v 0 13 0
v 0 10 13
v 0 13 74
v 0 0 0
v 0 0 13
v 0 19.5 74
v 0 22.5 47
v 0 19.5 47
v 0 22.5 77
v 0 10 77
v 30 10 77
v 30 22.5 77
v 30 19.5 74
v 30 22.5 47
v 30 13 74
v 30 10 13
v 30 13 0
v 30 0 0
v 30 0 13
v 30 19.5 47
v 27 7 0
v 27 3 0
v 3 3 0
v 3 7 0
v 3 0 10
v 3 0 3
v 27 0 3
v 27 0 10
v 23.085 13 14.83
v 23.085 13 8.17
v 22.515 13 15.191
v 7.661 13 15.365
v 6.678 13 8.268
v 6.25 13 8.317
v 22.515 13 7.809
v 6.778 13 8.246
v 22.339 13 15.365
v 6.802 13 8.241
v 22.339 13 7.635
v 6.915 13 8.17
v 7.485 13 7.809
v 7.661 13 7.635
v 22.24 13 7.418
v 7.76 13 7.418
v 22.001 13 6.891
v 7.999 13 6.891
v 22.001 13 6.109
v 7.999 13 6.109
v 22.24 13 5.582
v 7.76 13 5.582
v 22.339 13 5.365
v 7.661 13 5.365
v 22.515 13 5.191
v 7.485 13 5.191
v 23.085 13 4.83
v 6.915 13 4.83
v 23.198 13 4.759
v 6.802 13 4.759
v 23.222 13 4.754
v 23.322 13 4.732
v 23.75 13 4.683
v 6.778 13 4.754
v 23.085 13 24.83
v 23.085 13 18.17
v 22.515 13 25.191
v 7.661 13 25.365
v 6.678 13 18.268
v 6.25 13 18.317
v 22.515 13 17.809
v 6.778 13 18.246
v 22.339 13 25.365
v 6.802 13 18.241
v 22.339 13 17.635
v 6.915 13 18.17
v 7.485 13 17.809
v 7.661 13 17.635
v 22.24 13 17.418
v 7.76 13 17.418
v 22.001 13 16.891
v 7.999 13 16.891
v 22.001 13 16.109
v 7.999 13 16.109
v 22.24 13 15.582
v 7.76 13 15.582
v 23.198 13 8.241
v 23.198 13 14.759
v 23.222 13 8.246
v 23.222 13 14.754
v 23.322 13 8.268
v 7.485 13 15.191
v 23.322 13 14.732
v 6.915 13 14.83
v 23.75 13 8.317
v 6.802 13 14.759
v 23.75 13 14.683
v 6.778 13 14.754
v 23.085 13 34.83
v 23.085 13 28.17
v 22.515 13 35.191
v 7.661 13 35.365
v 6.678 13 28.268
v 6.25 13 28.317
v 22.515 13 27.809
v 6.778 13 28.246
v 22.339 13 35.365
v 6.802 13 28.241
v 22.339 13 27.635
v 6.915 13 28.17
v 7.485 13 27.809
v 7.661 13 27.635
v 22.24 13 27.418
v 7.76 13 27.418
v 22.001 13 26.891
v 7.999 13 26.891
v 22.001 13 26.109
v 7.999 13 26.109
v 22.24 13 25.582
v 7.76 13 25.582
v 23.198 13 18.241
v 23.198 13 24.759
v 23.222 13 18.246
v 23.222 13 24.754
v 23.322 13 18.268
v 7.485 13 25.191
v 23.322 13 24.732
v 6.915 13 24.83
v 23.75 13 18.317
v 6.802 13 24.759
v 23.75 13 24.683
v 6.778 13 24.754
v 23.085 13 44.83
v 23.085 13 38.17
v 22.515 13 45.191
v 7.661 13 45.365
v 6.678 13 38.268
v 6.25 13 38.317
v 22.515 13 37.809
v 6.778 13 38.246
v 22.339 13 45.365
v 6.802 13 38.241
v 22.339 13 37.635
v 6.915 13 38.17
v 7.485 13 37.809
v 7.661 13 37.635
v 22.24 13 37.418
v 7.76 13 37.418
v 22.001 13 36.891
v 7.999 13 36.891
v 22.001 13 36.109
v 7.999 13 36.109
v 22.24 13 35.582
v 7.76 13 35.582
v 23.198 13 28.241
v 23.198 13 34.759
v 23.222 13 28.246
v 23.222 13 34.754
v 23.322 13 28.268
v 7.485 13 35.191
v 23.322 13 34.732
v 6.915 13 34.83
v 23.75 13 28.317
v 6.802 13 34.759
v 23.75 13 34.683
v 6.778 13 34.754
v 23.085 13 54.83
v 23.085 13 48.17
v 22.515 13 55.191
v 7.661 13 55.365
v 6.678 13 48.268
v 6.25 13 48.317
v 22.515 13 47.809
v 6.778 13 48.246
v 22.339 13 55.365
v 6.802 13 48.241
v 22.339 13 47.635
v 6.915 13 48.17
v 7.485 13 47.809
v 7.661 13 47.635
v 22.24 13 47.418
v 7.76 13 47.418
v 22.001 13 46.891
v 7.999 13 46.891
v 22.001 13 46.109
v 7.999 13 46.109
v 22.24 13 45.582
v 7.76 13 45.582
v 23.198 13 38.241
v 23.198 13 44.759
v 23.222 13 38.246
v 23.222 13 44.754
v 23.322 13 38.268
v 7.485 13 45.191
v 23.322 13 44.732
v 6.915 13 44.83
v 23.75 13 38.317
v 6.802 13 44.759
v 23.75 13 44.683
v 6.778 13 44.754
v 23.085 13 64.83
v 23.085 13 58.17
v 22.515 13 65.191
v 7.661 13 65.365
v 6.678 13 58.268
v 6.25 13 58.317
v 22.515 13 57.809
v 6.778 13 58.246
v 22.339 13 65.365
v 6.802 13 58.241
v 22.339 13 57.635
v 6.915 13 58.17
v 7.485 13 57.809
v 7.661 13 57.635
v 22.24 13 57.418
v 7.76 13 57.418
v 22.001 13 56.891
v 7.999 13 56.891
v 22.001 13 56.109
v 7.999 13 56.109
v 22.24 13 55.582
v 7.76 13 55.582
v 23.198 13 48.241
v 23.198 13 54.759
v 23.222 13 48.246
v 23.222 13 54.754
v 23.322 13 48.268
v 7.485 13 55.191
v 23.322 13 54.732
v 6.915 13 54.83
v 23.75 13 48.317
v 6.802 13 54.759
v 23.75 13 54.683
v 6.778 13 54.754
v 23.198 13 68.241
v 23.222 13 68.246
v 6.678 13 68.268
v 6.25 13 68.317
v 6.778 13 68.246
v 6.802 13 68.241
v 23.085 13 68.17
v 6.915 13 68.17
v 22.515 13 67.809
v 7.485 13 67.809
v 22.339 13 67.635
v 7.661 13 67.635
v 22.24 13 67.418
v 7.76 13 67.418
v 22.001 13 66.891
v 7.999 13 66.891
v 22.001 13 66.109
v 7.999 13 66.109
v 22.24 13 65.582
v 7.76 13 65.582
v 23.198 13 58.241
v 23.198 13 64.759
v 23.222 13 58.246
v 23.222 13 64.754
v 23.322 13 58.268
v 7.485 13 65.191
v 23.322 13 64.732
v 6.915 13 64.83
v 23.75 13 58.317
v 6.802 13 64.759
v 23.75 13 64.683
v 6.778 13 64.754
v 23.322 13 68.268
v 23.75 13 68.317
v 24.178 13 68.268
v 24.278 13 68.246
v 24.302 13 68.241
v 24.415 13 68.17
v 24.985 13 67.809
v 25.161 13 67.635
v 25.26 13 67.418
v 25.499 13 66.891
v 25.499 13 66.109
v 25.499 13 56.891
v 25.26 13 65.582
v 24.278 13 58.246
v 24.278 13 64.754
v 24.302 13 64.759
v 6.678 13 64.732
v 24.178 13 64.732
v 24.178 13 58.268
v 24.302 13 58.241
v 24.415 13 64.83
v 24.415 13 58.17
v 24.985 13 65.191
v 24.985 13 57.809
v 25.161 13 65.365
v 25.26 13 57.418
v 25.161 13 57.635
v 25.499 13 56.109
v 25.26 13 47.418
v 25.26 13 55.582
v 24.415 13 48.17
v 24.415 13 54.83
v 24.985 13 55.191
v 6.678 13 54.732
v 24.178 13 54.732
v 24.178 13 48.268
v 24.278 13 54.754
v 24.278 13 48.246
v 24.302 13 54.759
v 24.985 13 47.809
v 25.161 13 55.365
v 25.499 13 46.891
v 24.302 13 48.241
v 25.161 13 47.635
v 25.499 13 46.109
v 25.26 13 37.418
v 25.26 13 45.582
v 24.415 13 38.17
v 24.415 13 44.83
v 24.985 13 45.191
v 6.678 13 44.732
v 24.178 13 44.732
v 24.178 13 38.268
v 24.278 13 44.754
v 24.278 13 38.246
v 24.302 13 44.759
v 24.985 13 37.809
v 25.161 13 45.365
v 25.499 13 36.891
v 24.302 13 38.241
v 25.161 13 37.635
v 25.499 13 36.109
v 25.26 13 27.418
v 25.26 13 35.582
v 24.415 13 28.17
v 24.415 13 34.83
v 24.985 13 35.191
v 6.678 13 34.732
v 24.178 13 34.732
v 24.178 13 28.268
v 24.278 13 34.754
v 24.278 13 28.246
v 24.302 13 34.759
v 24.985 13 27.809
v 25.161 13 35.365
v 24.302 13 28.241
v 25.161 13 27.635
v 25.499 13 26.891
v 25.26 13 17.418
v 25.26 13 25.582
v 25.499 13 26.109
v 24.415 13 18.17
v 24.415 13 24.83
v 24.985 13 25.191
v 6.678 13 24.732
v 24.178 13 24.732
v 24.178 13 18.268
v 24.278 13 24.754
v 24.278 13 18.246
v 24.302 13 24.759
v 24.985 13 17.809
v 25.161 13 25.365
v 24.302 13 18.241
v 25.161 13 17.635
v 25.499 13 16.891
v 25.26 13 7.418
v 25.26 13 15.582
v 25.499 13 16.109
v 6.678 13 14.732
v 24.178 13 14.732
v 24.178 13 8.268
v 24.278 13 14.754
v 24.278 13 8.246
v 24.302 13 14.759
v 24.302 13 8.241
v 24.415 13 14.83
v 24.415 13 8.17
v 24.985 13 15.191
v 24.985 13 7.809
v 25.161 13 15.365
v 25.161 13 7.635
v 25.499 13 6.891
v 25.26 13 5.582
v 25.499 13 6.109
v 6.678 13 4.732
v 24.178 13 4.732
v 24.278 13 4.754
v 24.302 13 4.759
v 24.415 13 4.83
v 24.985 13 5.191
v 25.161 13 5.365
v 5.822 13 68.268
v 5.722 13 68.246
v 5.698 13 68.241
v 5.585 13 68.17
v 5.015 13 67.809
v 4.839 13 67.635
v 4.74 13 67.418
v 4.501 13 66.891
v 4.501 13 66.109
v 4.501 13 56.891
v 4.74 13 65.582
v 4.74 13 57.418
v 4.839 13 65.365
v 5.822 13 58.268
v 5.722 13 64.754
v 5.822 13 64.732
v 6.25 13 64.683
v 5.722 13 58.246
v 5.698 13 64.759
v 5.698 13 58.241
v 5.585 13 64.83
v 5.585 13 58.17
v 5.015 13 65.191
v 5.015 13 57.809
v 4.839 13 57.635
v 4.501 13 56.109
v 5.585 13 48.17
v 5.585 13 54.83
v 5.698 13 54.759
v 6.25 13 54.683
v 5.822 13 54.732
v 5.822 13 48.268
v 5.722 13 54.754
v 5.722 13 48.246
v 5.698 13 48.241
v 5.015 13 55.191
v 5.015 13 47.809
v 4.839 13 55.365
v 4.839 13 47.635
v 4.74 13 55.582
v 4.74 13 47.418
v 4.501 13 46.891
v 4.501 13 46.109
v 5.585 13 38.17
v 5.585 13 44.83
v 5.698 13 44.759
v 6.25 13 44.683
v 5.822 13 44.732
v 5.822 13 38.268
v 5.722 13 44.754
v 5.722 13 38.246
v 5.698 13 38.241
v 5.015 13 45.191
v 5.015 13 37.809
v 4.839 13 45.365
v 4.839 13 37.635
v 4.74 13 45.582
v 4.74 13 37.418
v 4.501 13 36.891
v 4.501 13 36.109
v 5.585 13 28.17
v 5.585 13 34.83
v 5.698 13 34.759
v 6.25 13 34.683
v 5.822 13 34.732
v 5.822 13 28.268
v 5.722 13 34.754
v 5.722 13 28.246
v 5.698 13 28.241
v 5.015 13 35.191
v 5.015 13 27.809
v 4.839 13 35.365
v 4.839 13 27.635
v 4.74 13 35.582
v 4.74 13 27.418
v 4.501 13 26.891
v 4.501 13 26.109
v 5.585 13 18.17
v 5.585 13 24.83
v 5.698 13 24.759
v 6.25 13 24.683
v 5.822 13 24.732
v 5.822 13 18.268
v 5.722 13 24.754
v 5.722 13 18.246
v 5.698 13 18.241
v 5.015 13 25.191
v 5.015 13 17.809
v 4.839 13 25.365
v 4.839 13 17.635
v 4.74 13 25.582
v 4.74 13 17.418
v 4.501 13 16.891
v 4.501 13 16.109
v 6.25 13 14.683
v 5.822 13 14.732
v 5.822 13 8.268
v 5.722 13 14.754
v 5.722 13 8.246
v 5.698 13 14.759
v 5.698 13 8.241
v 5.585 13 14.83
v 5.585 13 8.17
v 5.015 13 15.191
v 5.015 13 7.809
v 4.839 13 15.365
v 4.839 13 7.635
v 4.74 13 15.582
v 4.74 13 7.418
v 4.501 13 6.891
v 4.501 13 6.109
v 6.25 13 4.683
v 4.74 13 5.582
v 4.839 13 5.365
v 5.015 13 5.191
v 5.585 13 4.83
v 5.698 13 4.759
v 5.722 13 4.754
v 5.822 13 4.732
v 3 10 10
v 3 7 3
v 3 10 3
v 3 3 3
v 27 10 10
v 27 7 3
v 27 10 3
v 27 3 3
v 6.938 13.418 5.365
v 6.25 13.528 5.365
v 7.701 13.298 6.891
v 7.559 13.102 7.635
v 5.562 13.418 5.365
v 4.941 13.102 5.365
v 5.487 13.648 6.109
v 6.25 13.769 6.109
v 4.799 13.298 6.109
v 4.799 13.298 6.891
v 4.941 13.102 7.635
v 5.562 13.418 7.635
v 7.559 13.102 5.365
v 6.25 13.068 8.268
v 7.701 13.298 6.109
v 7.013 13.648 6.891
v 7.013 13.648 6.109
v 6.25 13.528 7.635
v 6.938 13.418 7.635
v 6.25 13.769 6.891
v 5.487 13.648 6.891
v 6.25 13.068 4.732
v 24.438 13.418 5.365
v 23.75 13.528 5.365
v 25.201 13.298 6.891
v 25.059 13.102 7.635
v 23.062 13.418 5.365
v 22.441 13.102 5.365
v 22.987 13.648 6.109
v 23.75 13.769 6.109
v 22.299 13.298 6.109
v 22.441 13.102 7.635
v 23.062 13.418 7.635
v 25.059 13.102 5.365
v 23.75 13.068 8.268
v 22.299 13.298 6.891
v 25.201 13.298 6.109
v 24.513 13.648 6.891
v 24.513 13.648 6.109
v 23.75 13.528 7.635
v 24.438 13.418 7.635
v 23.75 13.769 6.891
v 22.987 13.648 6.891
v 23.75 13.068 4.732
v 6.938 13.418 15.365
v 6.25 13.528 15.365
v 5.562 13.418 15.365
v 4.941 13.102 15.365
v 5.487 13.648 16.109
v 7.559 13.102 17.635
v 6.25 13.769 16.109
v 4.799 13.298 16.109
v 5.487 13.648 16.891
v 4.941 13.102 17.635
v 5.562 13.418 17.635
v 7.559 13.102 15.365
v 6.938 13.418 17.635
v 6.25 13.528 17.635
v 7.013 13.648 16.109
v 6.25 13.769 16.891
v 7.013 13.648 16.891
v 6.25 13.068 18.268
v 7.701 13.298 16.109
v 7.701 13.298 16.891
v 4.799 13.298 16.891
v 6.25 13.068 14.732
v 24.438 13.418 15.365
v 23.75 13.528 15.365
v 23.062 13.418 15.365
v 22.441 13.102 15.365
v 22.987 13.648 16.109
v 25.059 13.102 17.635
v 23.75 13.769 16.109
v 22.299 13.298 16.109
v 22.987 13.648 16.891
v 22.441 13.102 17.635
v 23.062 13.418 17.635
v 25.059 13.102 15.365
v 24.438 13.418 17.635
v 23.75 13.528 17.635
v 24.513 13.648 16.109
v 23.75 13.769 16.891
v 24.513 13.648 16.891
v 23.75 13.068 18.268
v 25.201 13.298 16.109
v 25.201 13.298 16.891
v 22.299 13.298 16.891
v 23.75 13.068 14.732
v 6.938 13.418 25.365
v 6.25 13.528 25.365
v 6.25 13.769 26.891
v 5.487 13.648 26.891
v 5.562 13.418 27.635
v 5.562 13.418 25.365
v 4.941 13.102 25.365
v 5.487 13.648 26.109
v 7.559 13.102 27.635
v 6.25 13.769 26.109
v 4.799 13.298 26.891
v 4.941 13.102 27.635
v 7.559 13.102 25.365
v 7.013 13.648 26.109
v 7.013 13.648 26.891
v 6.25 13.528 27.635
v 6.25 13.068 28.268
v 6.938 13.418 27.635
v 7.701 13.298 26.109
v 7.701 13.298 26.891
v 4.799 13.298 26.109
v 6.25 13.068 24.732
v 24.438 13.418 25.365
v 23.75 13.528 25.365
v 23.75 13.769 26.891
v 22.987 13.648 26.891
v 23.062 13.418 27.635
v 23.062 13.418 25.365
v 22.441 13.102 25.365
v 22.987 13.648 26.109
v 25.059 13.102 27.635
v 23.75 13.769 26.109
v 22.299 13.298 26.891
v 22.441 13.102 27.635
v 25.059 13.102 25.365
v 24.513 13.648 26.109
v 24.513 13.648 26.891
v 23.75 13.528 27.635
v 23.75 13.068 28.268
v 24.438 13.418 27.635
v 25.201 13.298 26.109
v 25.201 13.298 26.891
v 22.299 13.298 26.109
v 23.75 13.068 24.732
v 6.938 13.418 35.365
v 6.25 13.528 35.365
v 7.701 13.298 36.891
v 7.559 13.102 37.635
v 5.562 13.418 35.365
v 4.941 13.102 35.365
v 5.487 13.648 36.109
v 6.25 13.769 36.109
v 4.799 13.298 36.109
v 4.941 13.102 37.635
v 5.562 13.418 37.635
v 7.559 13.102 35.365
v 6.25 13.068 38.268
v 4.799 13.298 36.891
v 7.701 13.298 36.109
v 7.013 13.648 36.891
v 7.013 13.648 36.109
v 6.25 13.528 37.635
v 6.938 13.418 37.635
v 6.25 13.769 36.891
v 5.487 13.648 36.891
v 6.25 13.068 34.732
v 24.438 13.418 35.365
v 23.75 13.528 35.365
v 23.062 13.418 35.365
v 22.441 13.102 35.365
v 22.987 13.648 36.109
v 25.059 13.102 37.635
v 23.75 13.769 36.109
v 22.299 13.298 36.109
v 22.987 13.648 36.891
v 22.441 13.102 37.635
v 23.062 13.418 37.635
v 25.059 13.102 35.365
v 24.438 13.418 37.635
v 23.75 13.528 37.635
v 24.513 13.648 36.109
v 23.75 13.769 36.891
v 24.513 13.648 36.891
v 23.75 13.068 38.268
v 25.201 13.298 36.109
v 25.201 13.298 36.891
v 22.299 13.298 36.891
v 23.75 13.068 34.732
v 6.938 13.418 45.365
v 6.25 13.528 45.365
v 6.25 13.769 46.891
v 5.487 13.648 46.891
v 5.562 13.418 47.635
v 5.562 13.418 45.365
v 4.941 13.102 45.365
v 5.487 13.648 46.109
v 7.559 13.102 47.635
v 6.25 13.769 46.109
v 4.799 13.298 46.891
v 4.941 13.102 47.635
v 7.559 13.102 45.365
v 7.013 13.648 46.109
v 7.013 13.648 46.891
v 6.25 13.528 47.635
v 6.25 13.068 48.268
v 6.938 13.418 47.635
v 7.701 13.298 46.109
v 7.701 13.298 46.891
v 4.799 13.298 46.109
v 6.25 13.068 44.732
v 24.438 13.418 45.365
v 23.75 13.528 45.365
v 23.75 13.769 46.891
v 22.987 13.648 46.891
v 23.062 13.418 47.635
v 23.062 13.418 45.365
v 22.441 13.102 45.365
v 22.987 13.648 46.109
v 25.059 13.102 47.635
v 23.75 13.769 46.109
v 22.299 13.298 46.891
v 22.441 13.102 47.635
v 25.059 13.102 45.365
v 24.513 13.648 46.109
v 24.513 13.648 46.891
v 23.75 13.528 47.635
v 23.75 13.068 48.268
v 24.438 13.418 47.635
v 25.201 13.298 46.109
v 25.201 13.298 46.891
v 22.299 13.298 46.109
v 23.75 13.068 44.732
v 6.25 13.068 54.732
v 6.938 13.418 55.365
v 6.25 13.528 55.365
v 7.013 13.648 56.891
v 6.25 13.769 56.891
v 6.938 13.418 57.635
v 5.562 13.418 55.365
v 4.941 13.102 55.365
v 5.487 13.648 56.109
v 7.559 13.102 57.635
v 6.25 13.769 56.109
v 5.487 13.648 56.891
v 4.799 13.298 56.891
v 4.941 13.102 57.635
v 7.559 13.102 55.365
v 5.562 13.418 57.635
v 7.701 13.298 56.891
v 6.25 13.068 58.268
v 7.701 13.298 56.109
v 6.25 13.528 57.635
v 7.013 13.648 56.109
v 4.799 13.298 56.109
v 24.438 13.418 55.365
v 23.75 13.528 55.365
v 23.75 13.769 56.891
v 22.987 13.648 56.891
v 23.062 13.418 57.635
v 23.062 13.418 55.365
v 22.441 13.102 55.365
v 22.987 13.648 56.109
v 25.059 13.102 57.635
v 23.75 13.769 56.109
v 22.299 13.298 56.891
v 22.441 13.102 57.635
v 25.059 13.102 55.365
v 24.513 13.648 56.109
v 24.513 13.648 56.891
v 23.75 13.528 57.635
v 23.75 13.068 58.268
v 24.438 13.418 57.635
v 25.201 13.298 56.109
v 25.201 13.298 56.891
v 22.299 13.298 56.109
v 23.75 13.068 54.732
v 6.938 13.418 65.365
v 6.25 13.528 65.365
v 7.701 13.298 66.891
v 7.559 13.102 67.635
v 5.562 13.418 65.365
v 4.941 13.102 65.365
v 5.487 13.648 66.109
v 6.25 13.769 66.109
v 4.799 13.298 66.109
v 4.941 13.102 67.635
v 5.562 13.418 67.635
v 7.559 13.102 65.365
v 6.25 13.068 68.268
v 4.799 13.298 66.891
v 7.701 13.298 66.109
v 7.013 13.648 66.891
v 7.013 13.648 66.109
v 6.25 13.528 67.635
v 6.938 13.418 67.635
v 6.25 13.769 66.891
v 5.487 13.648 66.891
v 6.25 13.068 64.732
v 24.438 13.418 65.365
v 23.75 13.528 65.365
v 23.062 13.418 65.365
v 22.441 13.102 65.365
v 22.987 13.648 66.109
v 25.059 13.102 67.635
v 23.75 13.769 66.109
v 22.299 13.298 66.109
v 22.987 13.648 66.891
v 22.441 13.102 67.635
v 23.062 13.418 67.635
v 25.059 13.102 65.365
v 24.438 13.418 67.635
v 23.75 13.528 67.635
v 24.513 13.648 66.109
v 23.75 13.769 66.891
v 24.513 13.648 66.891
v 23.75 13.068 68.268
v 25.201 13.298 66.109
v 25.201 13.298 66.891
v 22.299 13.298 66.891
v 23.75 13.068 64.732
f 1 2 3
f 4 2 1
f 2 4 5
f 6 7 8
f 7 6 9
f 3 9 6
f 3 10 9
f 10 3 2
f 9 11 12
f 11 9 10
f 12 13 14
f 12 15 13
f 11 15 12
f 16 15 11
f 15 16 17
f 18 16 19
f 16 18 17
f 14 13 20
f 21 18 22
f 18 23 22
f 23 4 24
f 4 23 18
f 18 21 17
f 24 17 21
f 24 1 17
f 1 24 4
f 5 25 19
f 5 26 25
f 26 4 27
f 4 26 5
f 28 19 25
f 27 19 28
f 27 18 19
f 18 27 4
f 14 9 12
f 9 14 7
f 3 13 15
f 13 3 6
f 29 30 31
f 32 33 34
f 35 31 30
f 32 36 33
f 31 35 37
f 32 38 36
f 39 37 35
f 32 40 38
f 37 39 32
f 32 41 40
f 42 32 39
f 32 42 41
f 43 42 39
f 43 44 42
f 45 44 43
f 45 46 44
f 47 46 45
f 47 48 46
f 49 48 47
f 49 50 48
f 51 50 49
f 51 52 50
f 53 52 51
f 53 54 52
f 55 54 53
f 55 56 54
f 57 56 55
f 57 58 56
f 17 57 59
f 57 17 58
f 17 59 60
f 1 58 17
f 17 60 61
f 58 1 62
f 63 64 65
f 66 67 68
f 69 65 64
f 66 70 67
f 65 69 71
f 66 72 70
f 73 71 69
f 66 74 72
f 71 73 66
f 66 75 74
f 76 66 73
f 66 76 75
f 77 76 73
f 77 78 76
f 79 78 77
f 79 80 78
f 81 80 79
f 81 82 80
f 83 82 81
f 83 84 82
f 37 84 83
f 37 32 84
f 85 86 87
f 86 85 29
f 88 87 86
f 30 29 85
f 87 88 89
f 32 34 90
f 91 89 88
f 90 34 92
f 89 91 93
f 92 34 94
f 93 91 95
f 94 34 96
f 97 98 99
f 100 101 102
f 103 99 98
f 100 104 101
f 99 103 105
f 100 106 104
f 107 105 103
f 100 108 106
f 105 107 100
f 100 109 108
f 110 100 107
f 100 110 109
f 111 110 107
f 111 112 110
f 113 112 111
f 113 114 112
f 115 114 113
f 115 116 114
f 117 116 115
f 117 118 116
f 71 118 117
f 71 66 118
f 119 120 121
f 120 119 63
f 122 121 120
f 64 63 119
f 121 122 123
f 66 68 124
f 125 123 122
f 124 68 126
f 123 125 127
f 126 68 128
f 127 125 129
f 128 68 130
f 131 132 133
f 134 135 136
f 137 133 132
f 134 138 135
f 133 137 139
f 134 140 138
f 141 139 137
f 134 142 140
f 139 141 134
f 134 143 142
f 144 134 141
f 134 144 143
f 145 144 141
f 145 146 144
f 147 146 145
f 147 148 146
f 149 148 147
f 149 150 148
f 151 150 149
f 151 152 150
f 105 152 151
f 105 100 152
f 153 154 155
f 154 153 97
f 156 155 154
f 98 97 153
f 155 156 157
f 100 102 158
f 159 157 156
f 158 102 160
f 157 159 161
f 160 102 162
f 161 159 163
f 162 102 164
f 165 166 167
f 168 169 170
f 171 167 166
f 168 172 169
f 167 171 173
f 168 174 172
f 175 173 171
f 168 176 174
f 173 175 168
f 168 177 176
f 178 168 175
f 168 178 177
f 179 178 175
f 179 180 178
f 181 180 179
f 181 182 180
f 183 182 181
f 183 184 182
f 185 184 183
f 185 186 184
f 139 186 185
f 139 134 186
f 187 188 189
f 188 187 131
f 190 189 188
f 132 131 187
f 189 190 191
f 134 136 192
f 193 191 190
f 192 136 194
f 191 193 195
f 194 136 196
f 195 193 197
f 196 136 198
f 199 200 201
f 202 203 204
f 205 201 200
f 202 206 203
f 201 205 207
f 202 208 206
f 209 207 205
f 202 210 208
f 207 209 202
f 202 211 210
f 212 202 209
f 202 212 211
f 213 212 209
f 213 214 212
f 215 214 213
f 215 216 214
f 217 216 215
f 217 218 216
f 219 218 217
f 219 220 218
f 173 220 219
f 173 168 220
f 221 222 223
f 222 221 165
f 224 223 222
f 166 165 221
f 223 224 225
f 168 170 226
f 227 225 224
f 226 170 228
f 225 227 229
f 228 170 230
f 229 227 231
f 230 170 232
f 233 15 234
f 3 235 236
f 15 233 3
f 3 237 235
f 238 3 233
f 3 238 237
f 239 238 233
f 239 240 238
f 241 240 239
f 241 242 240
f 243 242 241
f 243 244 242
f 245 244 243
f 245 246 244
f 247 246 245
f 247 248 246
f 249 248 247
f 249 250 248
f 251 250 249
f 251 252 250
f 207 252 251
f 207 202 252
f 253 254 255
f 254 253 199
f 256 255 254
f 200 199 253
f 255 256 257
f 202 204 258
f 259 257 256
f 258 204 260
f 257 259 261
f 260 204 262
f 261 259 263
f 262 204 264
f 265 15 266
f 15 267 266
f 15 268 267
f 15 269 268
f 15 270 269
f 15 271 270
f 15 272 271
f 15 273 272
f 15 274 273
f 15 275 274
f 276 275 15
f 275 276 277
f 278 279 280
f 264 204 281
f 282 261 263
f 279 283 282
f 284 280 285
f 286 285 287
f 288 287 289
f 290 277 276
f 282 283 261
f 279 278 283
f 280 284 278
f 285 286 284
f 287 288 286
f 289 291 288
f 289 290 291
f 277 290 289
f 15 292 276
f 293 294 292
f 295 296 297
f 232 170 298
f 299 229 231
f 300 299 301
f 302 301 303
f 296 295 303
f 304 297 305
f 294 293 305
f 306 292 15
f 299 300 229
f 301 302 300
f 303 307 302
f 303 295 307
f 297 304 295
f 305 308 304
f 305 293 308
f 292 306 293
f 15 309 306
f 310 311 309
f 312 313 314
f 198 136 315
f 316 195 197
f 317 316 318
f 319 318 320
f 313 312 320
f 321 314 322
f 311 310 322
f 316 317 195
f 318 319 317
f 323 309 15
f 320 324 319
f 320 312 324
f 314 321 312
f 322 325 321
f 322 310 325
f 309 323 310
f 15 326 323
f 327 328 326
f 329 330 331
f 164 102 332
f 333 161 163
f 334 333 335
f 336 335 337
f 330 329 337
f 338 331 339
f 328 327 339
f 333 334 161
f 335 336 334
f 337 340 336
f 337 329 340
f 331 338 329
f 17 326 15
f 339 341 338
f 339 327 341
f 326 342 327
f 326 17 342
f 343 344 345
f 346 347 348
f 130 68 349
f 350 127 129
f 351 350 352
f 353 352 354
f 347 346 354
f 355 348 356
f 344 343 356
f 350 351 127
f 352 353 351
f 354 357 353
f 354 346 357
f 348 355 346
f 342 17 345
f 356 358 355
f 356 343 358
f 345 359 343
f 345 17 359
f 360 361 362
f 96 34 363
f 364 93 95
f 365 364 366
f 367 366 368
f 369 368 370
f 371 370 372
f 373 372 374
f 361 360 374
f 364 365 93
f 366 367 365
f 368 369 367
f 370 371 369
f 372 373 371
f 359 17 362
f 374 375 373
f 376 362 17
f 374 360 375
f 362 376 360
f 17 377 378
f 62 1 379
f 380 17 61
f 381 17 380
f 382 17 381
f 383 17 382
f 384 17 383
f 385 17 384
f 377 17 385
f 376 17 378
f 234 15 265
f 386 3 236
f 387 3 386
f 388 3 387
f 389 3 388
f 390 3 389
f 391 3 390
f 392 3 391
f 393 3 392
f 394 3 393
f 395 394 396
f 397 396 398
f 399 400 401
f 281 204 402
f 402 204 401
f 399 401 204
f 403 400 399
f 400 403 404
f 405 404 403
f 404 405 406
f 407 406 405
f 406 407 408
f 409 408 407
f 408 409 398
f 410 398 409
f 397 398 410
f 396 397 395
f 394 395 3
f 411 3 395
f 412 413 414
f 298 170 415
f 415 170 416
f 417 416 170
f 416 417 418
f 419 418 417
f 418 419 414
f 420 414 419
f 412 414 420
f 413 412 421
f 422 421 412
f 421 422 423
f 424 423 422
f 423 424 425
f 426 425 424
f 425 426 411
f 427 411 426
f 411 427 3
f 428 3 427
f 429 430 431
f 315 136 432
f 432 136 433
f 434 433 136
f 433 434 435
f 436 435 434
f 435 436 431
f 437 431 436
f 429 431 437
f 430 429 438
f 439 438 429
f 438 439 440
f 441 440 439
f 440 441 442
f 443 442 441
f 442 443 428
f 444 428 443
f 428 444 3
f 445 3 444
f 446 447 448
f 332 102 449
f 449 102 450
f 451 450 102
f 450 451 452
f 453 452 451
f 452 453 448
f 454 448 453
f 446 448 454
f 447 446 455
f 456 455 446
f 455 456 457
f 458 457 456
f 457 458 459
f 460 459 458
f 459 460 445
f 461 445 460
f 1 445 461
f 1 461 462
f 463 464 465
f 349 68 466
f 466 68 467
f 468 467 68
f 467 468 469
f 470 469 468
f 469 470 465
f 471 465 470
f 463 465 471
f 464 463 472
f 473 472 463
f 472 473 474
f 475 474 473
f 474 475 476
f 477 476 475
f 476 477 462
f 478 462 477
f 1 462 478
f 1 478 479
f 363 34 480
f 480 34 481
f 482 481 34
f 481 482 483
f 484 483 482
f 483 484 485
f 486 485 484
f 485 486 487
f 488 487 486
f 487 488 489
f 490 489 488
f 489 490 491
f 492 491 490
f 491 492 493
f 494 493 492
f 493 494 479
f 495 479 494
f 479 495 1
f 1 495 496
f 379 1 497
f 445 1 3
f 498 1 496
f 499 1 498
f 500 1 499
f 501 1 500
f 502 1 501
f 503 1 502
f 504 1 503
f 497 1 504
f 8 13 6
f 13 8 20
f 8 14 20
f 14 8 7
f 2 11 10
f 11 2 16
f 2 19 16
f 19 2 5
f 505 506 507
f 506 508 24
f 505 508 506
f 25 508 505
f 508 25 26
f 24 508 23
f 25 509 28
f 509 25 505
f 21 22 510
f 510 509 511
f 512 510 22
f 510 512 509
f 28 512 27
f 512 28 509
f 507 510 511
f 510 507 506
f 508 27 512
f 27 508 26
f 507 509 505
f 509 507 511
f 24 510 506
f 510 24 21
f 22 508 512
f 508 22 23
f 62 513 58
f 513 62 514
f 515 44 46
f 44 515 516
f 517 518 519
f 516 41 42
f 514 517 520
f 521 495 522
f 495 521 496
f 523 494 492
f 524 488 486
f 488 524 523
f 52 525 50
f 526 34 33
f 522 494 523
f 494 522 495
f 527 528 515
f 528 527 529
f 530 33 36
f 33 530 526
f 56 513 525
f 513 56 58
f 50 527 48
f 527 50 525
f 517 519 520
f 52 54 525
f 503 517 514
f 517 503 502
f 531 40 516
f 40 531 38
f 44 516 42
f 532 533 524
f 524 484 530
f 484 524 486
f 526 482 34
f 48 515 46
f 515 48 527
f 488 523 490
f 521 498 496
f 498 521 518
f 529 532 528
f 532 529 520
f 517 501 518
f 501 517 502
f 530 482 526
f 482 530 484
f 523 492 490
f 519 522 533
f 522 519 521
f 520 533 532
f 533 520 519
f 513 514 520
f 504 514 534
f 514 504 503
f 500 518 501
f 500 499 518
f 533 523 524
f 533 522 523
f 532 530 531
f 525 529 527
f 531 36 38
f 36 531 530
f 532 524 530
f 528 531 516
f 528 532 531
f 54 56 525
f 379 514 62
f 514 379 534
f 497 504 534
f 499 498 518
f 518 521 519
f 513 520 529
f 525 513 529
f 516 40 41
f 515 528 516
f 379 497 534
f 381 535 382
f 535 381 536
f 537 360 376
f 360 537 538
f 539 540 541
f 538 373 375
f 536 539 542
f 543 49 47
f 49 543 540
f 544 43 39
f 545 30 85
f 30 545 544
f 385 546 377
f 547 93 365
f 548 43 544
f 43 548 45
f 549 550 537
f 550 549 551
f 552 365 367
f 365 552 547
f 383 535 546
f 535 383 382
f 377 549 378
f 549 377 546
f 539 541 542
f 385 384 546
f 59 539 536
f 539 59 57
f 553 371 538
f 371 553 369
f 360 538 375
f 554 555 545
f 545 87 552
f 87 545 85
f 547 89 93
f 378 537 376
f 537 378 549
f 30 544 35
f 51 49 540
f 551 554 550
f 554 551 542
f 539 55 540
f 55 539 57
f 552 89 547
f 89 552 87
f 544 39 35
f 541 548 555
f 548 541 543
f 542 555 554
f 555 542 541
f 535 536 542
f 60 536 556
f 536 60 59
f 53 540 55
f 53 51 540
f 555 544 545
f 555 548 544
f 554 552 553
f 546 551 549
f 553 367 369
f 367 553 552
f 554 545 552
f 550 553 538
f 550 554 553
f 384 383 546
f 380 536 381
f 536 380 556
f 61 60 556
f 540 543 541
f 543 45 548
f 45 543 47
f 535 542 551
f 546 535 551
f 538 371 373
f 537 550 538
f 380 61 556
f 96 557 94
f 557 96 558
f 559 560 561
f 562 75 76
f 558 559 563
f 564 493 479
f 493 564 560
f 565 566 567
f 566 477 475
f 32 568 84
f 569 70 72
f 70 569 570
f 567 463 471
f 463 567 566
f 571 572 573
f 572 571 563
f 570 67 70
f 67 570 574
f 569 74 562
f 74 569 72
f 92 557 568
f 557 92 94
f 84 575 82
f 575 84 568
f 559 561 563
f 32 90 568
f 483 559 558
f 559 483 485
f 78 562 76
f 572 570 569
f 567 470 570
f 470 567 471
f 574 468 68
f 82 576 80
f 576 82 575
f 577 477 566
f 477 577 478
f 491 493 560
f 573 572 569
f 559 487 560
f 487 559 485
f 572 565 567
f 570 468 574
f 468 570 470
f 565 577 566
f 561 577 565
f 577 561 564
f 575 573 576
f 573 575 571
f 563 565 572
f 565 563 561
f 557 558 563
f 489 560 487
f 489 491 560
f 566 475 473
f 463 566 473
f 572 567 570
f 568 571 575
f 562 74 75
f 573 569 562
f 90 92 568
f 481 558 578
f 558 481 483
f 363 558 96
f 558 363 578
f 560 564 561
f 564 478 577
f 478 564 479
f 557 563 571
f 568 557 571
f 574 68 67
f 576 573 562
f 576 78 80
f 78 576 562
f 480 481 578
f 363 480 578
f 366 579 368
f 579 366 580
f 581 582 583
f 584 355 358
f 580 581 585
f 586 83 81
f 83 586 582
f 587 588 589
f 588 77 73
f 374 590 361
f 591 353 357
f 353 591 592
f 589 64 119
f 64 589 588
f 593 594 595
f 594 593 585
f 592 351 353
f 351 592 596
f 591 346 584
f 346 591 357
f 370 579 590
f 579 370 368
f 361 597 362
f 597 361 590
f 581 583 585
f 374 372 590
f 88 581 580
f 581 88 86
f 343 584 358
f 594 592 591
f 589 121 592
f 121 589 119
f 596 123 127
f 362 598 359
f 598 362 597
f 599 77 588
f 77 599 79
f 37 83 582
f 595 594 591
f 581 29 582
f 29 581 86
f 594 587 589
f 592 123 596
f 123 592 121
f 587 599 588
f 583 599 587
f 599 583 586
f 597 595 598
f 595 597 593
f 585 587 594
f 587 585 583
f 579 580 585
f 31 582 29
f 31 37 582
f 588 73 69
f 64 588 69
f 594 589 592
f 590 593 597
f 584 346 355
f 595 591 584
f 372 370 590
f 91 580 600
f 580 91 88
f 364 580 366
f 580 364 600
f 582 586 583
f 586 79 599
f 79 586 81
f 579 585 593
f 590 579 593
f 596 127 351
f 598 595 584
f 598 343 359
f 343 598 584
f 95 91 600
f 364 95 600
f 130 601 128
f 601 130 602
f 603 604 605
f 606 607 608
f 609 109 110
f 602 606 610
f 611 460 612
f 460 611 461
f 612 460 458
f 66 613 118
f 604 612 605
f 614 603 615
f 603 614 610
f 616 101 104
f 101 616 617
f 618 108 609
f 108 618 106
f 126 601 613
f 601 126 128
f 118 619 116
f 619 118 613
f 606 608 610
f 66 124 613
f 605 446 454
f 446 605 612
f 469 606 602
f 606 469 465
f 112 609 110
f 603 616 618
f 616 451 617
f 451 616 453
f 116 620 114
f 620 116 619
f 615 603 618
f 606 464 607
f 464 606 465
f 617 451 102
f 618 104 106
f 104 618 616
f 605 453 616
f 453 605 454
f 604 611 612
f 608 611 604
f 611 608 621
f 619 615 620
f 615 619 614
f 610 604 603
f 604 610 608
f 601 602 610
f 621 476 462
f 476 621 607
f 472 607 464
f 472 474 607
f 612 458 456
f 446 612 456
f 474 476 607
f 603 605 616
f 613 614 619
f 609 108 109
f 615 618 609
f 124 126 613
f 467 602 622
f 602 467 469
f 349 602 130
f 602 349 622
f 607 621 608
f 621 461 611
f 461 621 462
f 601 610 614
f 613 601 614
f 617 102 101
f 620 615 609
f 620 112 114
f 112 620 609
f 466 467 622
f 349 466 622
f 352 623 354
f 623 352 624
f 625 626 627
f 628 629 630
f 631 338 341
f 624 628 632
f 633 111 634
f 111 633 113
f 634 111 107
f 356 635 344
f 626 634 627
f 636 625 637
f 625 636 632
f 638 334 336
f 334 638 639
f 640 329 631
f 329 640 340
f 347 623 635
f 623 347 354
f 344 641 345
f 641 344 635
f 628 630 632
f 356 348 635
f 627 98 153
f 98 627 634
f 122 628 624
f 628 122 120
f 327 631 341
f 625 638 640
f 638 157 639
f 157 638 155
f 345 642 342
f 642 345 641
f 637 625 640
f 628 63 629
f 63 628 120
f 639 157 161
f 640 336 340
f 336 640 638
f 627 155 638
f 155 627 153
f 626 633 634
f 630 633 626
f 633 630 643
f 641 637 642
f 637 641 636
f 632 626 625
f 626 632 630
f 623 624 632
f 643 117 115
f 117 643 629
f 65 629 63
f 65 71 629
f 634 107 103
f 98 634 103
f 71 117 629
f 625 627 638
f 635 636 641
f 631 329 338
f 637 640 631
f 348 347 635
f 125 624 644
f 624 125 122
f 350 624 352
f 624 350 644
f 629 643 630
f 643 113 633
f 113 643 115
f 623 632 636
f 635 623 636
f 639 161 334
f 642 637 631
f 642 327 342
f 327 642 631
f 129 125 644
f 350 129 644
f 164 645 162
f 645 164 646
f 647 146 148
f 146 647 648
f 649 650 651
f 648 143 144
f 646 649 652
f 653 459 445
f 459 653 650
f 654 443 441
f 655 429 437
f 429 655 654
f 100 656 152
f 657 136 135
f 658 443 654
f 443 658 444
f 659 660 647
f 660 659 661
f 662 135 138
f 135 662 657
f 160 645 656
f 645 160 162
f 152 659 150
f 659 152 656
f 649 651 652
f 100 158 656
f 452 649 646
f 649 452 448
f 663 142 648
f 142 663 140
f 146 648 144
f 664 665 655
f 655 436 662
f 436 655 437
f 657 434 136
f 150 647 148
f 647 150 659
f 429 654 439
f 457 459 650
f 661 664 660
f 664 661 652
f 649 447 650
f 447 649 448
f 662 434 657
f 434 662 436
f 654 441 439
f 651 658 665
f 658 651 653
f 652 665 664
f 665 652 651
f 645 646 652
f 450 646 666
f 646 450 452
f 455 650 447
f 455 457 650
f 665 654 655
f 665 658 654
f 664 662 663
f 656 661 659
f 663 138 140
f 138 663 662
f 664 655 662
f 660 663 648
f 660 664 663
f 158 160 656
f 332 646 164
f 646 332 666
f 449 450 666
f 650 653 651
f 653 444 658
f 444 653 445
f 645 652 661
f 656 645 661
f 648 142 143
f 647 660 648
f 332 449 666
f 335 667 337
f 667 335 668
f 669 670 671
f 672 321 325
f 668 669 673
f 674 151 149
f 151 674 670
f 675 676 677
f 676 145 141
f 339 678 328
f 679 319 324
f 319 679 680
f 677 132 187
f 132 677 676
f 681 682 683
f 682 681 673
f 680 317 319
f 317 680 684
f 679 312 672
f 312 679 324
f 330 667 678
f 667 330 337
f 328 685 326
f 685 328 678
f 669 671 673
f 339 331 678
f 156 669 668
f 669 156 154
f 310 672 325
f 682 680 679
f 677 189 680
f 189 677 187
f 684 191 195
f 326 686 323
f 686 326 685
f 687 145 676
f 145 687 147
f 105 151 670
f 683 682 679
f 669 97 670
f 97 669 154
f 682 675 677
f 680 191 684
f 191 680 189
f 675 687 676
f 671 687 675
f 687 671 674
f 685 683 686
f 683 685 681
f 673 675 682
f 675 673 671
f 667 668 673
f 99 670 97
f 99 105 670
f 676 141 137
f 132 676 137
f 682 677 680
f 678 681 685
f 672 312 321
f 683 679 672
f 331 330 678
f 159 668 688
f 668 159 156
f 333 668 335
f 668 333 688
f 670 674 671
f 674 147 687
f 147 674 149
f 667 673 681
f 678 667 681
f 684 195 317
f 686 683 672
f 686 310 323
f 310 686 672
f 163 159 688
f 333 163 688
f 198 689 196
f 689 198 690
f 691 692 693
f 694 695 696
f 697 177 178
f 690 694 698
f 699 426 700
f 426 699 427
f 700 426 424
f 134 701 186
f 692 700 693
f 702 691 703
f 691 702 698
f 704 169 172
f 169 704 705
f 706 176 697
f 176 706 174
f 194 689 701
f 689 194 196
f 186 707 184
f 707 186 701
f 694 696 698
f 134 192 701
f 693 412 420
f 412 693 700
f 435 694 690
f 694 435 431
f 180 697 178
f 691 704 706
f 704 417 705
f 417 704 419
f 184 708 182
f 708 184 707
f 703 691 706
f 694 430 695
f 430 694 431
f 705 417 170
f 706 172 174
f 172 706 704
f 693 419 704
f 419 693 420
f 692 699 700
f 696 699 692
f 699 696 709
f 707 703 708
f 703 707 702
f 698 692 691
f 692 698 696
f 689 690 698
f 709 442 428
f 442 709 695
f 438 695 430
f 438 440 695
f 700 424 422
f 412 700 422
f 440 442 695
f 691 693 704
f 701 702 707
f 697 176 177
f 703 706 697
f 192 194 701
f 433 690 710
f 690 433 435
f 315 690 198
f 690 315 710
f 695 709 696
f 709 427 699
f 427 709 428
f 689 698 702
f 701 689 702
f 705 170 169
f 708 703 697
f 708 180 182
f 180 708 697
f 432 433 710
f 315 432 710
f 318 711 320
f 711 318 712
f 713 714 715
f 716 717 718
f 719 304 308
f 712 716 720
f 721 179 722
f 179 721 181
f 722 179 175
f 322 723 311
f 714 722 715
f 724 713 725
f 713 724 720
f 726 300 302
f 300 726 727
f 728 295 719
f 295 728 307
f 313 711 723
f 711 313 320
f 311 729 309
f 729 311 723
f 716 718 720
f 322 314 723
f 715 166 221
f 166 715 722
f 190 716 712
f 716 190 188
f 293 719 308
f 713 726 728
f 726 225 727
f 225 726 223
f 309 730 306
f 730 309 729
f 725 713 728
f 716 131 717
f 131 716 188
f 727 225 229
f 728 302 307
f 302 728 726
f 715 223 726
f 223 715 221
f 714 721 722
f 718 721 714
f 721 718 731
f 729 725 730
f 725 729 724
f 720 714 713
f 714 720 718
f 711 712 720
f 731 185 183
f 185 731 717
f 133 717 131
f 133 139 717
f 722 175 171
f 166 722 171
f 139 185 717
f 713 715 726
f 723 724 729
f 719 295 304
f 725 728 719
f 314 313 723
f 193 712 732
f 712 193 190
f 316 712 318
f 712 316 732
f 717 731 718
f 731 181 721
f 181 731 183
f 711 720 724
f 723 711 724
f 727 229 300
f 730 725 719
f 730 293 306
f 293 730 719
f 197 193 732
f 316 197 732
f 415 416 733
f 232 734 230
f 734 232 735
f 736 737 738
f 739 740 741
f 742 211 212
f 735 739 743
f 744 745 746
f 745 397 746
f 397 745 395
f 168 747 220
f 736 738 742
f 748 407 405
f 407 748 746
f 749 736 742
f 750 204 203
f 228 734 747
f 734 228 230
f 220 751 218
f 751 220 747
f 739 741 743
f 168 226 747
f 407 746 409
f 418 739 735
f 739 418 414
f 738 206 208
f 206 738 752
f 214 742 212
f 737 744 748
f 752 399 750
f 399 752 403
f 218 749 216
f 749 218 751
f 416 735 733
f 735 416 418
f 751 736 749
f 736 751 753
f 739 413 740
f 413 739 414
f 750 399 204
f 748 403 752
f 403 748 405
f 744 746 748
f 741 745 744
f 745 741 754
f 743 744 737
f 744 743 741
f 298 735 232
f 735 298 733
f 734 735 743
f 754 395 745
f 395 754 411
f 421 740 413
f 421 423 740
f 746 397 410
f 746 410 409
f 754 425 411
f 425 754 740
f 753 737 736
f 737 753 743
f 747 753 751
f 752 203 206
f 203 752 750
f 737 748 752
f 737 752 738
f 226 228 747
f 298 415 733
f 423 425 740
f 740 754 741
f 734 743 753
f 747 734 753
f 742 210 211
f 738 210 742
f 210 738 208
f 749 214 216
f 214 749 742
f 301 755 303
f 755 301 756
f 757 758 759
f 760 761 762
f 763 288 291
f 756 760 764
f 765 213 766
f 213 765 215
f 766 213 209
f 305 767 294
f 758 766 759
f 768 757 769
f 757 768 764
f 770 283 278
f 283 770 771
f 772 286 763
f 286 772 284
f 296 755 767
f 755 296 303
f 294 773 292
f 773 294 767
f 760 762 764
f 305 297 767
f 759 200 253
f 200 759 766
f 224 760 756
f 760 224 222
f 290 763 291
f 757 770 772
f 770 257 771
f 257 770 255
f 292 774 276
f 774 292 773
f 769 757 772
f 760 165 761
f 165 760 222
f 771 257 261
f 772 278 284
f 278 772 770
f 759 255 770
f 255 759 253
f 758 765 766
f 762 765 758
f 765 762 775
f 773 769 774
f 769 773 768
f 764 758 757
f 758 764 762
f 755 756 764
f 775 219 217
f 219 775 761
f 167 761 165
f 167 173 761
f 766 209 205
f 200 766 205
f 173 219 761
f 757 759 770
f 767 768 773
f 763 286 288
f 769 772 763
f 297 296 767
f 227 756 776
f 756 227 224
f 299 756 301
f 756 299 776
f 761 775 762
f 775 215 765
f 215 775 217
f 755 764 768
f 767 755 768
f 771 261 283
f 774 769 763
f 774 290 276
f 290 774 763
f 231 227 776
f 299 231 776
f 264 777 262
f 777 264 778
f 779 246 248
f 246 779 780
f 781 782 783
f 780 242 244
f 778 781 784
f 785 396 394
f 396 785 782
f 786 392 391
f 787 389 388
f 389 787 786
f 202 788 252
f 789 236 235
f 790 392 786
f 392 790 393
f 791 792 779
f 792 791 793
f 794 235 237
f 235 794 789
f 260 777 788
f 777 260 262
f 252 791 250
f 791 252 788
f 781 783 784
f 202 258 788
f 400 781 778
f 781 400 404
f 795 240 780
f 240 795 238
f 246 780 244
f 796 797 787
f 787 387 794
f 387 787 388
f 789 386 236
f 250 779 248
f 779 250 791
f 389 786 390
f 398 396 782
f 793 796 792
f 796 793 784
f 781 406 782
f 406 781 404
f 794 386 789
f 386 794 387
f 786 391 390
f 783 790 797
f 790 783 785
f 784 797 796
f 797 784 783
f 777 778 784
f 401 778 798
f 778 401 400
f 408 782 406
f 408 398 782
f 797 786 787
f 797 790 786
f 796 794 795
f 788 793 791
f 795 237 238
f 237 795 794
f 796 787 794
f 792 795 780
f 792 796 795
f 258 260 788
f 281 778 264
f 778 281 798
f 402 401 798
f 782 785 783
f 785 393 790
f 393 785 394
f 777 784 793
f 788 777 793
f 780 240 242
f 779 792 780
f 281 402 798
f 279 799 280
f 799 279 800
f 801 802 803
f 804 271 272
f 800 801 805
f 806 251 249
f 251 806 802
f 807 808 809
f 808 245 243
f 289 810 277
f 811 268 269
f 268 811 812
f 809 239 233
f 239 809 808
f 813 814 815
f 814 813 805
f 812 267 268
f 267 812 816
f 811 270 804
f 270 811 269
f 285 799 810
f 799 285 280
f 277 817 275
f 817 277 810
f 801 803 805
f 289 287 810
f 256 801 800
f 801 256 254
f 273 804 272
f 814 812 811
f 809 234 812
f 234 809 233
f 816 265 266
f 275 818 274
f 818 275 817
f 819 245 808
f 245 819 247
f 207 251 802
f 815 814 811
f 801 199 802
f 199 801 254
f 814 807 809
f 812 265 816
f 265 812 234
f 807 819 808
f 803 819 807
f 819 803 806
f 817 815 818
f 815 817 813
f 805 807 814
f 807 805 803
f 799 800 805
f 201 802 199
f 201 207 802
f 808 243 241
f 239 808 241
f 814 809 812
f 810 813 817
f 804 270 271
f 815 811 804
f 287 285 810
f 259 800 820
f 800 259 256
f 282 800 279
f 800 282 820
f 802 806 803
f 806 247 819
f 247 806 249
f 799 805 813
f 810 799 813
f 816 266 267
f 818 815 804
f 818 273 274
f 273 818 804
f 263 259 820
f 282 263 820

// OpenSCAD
distSurfaceBordHaut = 24; //distance entre bord haut du verre et surface de l'eau
epaisseurVerre = 6;

epaisseurVerreBis = epaisseurVerre + 0.5;
epaisseurParoi = 3;
hauteurPatteExterieure = 30;
hauteur = epaisseurParoi + distSurfaceBordHaut + 50;
largeur = 30;
epaisseurFixation = 10;
hauteurFixation = 13;
epaisseurTotale = epaisseurVerreBis + epaisseurFixation + 2*epaisseurParoi;
largeurOuvertureFixationFace = 24;
hauteurOuvertureFixationFace = 7;
sphereD = 5;

module skimmer() {
  difference() {
    // Corps
    cube([largeur, epaisseurTotale, hauteur]);
    // Evidement central
    translate([-0.5, epaisseurFixation + epaisseurParoi, -epaisseurParoi])
      cube([largeur + 1, epaisseurVerreBis , hauteur]);
    // Carcourcir patte exterieure
    translate([-0.5, epaisseurFixation + 3*epaisseurParoi, -1])
      cube([largeur + 1, epaisseurVerreBis, hauteur - hauteurPatteExterieure +1]);    
    // Retrait au dessus fixation
    translate([-0.5, -1, hauteurFixation])
      cube([largeur + 1, epaisseurFixation + 1, hauteur ]);
    // Retrait moindre pour avancée anti capillarité
    translate([-0.5, -1, hauteurFixation])
      cube([largeur + 1, epaisseurFixation/2, hauteur]);   
    
    // Ouverture fixation face
    translate([(largeur - largeurOuvertureFixationFace)/2, -1, (hauteurFixation - hauteurOuvertureFixationFace)/2])
      cube([largeurOuvertureFixationFace, epaisseurFixation + 1, hauteurOuvertureFixationFace]);
  
    // Ouverture fixation dessous
    translate([(largeur - largeurOuvertureFixationFace)/2, 3, -(hauteurOuvertureFixationFace/2)])
      cube([largeurOuvertureFixationFace, epaisseurFixation - 2*epaisseurParoi, hauteurOuvertureFixationFace]);    
  }
  translate([0, epaisseurFixation - (sphereD/2), hauteurFixation/2])	
    antiCapilarite();	
  
}

module antiCapilarite() {
	difference() {		
	  // Add spheres to not allow water to climb because of capilarity.
		for(i = [1:1:hauteur/(2*sphereD)]) {
			translate([(largeur - sphereD)/4, sphereD/2 + 1.3, i*2*sphereD - 10])
				sphere(d = sphereD , $fn=20);
			translate([largeur - (largeur - sphereD)/4, sphereD/2 + 1.3 , i*2*sphereD - 10])
				sphere(d = sphereD , $fn=20);
		}
		translate([0, sphereD/4, -sphereD])
	    cube([largeur, sphereD/2, hauteur]);
	}	
}

skimmer();
//antiCapilarite();
